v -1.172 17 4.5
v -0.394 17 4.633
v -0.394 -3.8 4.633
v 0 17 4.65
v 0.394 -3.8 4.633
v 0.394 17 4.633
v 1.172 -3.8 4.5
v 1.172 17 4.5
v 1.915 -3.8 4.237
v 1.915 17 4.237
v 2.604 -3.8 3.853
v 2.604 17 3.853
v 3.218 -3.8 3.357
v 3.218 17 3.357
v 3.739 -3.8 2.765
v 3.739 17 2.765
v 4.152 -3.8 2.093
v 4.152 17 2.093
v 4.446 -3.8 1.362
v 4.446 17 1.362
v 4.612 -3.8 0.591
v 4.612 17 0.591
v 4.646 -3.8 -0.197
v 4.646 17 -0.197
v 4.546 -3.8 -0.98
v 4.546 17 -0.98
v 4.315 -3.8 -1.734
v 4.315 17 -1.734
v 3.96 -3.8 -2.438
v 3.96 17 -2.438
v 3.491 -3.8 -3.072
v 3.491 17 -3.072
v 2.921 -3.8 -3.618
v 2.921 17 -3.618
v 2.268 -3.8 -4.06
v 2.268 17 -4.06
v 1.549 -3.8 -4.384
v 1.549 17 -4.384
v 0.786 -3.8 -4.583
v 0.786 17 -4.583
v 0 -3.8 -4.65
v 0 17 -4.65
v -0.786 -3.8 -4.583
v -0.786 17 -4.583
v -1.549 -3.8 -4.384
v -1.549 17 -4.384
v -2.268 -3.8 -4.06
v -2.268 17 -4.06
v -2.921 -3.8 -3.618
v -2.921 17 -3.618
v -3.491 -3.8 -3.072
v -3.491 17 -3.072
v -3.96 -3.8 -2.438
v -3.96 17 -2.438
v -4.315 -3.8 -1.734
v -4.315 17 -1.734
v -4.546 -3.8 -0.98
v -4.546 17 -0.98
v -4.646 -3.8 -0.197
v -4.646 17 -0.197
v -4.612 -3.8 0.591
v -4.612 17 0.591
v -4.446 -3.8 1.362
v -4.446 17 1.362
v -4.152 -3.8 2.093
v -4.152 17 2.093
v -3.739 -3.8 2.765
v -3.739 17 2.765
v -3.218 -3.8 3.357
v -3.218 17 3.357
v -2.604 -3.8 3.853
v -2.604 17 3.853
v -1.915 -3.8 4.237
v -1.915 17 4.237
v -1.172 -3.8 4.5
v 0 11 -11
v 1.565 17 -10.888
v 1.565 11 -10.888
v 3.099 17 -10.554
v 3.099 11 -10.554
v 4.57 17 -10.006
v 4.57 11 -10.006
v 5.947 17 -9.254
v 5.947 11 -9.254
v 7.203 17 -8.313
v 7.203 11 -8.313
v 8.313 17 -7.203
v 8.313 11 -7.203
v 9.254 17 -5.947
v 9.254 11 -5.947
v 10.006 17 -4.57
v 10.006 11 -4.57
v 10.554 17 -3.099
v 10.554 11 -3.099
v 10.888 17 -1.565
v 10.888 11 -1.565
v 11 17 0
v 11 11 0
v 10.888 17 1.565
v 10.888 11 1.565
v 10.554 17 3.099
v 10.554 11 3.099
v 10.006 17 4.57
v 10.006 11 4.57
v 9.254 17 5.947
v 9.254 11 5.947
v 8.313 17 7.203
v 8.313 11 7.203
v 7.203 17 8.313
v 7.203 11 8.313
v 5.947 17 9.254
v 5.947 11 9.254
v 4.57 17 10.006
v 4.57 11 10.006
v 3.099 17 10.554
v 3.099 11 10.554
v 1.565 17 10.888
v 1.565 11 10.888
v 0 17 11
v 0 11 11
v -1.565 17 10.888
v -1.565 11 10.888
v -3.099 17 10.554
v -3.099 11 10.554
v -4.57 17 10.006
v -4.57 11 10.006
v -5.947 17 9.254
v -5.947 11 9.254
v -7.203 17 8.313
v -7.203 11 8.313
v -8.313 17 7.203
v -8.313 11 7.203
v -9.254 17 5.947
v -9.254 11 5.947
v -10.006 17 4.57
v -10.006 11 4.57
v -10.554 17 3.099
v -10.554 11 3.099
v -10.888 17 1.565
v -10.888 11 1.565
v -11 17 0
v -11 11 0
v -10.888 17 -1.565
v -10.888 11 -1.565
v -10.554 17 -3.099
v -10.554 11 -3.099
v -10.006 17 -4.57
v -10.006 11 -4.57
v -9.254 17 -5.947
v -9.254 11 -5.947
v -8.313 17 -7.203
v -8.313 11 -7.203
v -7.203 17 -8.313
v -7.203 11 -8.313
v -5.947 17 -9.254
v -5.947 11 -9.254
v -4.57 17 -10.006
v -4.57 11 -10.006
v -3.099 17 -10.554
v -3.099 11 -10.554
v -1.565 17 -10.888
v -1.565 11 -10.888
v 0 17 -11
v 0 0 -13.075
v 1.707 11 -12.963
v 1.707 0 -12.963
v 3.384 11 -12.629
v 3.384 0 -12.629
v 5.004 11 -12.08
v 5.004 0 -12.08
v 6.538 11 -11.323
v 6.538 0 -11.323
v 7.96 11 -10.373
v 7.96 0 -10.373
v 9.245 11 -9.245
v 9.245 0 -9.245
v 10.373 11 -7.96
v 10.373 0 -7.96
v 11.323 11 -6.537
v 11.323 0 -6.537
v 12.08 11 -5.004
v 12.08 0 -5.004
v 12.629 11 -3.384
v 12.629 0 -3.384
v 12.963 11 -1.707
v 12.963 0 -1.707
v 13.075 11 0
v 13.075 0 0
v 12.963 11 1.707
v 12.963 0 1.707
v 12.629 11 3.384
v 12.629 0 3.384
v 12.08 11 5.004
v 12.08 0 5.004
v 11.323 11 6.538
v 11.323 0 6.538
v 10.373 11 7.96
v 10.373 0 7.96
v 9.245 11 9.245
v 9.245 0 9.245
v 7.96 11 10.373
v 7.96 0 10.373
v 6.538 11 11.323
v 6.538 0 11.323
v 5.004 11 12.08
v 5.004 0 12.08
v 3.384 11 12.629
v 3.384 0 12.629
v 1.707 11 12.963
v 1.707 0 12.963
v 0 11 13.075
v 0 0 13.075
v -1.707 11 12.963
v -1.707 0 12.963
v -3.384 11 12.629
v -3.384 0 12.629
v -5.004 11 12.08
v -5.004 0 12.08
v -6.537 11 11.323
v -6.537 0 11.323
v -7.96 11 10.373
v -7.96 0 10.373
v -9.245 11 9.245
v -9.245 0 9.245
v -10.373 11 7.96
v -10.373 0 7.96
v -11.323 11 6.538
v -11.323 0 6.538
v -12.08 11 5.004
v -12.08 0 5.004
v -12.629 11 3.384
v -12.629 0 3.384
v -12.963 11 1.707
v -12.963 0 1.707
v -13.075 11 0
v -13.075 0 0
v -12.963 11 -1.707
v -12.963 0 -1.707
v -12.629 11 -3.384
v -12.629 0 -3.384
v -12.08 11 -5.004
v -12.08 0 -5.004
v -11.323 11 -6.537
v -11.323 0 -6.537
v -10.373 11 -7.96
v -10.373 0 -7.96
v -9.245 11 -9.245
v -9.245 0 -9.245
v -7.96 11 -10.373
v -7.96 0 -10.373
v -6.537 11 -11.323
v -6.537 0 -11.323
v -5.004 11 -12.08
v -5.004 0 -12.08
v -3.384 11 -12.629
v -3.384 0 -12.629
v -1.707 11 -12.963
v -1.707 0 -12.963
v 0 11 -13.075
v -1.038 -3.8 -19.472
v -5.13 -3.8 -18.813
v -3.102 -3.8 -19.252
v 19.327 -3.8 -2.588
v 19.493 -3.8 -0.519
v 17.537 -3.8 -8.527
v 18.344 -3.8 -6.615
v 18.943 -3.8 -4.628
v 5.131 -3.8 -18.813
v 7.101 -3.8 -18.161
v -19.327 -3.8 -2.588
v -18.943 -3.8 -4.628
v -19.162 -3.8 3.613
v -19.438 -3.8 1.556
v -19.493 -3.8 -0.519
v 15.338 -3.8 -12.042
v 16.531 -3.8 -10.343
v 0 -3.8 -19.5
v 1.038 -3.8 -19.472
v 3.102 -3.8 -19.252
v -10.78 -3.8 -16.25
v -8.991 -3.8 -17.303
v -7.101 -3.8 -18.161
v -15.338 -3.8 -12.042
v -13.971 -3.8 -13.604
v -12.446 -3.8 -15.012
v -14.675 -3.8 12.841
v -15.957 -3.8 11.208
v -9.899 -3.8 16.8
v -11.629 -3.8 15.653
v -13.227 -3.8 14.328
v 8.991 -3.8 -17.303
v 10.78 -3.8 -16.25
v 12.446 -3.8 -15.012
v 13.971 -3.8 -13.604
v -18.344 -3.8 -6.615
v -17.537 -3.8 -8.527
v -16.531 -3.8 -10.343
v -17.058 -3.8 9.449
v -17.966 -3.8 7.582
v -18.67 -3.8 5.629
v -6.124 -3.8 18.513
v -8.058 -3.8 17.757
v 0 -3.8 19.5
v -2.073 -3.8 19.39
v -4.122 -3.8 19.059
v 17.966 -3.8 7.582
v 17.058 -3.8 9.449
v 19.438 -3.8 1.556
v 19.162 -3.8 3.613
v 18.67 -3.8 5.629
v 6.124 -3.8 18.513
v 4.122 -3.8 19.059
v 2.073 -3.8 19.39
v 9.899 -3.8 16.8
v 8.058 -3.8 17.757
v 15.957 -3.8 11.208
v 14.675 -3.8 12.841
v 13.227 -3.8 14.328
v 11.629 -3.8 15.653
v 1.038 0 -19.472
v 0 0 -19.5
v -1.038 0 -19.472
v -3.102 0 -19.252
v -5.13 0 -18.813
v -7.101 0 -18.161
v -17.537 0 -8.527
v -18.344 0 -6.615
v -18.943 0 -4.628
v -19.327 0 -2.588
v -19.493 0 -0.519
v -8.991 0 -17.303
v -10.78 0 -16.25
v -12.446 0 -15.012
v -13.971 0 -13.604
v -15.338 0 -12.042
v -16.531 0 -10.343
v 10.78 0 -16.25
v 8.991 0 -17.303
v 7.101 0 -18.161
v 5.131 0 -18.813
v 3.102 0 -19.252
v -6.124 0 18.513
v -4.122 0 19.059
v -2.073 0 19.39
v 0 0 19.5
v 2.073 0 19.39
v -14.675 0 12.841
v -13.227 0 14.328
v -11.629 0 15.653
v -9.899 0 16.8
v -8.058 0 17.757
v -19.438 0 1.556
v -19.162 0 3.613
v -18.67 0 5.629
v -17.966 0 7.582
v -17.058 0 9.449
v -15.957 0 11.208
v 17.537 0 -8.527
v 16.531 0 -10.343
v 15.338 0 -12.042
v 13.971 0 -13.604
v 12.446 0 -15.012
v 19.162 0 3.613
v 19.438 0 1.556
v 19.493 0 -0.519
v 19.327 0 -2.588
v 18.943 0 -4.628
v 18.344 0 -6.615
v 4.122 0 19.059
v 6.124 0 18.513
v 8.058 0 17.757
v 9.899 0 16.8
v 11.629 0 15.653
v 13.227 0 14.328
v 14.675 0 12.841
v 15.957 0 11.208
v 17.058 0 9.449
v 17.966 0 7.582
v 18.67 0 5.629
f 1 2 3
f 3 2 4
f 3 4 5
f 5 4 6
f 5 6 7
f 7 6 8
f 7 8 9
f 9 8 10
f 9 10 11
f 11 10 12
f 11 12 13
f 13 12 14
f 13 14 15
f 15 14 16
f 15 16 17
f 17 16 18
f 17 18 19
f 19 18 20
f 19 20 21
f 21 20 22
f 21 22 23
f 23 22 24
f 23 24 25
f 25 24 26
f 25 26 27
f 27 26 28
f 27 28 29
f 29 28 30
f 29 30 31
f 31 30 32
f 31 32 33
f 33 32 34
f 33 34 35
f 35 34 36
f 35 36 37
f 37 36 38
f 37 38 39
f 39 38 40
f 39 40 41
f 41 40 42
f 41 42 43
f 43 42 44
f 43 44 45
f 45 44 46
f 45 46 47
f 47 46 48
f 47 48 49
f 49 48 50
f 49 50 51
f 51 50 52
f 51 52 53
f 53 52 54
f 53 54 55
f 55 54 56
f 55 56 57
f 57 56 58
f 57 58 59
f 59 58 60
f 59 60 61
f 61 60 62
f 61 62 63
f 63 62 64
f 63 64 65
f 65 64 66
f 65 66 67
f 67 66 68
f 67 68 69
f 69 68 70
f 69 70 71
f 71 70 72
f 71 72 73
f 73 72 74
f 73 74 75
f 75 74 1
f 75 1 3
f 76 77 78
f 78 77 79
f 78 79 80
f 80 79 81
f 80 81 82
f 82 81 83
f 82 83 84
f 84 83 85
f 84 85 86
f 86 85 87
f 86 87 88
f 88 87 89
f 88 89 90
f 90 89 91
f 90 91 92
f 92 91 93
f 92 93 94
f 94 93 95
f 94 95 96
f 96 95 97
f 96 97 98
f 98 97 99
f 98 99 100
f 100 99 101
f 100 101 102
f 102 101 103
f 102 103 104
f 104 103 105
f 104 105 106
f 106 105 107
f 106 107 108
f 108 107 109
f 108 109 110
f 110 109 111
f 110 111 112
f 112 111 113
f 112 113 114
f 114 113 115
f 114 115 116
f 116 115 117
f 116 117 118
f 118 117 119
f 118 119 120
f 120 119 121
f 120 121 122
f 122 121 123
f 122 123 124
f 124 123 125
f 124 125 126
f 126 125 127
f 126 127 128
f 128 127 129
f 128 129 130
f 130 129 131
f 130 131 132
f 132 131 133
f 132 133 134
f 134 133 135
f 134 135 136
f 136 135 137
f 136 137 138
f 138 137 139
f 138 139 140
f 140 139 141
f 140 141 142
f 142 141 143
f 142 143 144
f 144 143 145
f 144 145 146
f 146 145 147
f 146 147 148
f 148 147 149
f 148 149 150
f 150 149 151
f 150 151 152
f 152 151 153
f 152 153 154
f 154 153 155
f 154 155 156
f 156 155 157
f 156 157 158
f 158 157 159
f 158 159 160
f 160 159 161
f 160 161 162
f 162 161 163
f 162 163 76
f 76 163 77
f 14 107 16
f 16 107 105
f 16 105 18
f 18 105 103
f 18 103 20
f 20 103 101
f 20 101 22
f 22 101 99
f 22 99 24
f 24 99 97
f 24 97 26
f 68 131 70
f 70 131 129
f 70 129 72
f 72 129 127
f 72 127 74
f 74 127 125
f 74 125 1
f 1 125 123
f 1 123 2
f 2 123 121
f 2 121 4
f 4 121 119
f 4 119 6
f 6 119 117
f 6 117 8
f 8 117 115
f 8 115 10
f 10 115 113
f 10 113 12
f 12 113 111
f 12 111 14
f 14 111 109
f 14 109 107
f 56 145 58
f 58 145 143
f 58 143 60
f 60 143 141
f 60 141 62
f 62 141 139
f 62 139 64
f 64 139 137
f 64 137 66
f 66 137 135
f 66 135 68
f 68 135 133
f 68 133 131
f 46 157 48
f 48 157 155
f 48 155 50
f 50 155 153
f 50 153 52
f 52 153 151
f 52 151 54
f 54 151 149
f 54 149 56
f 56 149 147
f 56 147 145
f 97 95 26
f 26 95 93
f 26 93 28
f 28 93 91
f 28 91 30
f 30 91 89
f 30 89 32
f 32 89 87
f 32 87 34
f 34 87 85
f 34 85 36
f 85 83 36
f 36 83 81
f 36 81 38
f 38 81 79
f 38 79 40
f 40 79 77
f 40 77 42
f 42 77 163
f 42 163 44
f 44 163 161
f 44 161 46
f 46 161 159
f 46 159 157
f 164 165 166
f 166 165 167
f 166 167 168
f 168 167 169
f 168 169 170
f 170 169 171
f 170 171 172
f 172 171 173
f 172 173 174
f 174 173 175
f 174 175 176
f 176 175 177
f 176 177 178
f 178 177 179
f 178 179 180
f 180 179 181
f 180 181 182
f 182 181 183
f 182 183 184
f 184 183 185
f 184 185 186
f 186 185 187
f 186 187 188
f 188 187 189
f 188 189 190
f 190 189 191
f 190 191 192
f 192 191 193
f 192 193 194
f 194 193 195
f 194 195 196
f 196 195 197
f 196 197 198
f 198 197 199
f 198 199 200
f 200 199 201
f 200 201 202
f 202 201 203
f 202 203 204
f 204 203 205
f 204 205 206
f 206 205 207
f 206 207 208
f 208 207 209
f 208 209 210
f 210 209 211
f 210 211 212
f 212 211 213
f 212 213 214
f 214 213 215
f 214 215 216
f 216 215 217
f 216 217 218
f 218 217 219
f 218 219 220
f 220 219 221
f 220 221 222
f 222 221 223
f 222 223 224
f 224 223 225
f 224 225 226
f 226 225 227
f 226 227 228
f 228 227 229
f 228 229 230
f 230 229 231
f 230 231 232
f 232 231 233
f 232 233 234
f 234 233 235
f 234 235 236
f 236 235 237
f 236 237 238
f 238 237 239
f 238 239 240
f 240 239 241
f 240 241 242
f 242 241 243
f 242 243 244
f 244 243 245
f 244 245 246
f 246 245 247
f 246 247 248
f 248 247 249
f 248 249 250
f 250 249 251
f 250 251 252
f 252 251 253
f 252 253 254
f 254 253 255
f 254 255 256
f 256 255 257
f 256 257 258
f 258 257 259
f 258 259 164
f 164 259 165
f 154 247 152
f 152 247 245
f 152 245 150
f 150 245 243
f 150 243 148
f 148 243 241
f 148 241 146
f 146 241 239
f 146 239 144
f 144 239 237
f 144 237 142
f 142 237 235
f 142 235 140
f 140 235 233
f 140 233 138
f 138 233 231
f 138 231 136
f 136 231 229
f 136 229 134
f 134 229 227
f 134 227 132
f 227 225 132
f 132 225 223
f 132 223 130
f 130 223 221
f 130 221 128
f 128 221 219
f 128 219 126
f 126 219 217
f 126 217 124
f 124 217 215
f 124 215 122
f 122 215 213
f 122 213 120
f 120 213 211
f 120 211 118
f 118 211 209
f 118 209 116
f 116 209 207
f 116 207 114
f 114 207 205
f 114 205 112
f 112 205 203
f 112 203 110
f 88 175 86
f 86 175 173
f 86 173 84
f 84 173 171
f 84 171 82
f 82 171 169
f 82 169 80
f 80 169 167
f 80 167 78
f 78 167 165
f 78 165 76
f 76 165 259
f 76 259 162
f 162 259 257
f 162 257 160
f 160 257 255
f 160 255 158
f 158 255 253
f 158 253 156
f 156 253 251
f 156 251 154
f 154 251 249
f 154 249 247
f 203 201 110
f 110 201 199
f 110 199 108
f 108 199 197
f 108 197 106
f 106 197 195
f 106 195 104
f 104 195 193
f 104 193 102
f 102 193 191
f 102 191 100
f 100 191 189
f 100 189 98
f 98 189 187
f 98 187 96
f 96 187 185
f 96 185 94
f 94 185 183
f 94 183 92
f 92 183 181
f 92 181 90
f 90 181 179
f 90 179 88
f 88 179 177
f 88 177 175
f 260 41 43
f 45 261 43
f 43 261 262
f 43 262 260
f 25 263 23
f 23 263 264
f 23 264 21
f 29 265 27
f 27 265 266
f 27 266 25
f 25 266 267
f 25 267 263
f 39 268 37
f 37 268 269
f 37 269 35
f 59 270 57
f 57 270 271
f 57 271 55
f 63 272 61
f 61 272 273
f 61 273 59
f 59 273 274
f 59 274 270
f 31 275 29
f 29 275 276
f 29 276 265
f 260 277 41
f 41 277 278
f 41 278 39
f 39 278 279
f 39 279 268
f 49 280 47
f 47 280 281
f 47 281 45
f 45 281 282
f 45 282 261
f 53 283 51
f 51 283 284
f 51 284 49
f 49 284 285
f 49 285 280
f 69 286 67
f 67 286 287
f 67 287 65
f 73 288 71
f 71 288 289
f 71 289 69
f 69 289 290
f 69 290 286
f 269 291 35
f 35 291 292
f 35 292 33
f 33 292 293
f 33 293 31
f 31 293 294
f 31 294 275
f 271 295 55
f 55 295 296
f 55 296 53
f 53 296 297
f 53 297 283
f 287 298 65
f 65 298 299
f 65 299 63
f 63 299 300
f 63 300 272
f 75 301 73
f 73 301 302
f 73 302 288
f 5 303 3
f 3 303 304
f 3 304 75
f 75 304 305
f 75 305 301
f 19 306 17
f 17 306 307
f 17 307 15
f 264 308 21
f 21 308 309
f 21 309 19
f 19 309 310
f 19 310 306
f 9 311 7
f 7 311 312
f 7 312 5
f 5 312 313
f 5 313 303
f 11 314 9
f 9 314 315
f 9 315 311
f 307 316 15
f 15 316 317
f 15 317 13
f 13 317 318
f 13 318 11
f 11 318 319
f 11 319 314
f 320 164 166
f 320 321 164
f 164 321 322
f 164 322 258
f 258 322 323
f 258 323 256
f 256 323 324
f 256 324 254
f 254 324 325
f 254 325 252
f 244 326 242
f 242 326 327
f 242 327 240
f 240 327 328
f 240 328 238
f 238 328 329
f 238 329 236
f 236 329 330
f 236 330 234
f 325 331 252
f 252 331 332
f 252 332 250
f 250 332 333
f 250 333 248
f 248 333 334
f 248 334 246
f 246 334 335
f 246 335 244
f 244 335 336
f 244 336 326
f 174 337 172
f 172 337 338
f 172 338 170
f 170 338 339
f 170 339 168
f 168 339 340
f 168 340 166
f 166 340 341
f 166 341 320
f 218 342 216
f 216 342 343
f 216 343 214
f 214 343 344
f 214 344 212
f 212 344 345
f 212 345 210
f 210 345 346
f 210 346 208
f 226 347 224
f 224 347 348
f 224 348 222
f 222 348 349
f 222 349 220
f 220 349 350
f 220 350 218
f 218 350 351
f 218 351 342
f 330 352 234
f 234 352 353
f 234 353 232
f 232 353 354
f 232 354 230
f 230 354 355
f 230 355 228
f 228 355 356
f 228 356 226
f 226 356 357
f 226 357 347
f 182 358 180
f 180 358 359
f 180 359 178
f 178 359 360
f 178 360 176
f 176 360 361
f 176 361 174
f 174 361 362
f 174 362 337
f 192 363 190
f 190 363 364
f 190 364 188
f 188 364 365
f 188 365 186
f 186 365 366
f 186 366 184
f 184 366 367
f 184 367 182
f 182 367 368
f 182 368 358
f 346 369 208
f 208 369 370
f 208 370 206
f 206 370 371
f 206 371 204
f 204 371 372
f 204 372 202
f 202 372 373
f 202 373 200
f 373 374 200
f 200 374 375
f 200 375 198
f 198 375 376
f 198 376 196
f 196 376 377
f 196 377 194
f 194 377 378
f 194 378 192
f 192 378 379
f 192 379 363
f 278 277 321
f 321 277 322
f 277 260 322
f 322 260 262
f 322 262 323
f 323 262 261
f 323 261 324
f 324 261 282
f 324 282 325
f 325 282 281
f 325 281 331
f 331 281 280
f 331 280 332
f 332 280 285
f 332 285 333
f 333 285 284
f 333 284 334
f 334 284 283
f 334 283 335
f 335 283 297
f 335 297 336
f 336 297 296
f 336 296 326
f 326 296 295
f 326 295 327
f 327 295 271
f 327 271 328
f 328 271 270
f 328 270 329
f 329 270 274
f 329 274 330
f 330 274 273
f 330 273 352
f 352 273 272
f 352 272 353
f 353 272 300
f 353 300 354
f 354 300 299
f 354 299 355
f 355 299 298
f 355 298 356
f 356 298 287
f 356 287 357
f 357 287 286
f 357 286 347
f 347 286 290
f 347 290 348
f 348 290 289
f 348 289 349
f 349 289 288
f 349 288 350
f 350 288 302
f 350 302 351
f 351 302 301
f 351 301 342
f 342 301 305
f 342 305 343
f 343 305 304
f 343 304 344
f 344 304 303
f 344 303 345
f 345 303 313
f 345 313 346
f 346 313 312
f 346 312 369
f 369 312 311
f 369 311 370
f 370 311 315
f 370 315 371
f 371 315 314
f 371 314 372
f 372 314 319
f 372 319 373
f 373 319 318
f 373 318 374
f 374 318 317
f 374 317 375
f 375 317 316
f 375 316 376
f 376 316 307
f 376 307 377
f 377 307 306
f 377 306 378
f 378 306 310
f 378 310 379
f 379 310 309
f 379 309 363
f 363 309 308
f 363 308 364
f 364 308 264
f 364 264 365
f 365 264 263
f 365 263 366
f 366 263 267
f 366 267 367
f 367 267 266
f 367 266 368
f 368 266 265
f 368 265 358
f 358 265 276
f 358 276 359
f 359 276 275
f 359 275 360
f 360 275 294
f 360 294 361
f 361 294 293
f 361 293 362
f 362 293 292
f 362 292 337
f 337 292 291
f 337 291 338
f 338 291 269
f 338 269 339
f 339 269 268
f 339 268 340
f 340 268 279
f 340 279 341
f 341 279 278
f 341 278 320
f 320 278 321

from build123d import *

# Parameters (mm, degrees)
SKETCH1_R           = 11
SKETCH1_R_2         = 4.65
BOSS_EXTRUDE1_DEPTH = 17
SKETCH1_5_R         = 13.075
SKETCH1_5_R_2       = 11
BOSS_EXTRUDE2_DEPTH = 11
BOSS_EXTRUDE3_START = 3.8
SKETCH2_R           = 19.5
SKETCH2_R_2         = 4.65
BOSS_EXTRUDE3_DEPTH = 3.8


with BuildPart() as part:
    # Sketch1 → Boss-Extrude1 (new body)
    with BuildSketch(Plane(origin=(0, 0, 0), x_dir=(1, 0, 0), z_dir=(0, 1, 0))):
        Circle(SKETCH1_R)
        Circle(SKETCH1_R_2, mode=Mode.SUBTRACT)
    extrude(amount=BOSS_EXTRUDE1_DEPTH)

    # Sketch1<5> → Boss-Extrude2 (add)
    with BuildSketch(Plane(origin=(0, 0, 0), x_dir=(1, 0, 0), z_dir=(0, 1, 0))):
        Circle(SKETCH1_5_R)
        Circle(SKETCH1_5_R_2, mode=Mode.SUBTRACT)
    extrude(amount=BOSS_EXTRUDE2_DEPTH)

    # Sketch2 → Boss-Extrude3 (add)
    with BuildSketch(Plane.XZ.offset(BOSS_EXTRUDE3_START)):
        Circle(SKETCH2_R)
        Circle(SKETCH2_R_2, mode=Mode.SUBTRACT)
    extrude(amount=-BOSS_EXTRUDE3_DEPTH)


solid = part.part
